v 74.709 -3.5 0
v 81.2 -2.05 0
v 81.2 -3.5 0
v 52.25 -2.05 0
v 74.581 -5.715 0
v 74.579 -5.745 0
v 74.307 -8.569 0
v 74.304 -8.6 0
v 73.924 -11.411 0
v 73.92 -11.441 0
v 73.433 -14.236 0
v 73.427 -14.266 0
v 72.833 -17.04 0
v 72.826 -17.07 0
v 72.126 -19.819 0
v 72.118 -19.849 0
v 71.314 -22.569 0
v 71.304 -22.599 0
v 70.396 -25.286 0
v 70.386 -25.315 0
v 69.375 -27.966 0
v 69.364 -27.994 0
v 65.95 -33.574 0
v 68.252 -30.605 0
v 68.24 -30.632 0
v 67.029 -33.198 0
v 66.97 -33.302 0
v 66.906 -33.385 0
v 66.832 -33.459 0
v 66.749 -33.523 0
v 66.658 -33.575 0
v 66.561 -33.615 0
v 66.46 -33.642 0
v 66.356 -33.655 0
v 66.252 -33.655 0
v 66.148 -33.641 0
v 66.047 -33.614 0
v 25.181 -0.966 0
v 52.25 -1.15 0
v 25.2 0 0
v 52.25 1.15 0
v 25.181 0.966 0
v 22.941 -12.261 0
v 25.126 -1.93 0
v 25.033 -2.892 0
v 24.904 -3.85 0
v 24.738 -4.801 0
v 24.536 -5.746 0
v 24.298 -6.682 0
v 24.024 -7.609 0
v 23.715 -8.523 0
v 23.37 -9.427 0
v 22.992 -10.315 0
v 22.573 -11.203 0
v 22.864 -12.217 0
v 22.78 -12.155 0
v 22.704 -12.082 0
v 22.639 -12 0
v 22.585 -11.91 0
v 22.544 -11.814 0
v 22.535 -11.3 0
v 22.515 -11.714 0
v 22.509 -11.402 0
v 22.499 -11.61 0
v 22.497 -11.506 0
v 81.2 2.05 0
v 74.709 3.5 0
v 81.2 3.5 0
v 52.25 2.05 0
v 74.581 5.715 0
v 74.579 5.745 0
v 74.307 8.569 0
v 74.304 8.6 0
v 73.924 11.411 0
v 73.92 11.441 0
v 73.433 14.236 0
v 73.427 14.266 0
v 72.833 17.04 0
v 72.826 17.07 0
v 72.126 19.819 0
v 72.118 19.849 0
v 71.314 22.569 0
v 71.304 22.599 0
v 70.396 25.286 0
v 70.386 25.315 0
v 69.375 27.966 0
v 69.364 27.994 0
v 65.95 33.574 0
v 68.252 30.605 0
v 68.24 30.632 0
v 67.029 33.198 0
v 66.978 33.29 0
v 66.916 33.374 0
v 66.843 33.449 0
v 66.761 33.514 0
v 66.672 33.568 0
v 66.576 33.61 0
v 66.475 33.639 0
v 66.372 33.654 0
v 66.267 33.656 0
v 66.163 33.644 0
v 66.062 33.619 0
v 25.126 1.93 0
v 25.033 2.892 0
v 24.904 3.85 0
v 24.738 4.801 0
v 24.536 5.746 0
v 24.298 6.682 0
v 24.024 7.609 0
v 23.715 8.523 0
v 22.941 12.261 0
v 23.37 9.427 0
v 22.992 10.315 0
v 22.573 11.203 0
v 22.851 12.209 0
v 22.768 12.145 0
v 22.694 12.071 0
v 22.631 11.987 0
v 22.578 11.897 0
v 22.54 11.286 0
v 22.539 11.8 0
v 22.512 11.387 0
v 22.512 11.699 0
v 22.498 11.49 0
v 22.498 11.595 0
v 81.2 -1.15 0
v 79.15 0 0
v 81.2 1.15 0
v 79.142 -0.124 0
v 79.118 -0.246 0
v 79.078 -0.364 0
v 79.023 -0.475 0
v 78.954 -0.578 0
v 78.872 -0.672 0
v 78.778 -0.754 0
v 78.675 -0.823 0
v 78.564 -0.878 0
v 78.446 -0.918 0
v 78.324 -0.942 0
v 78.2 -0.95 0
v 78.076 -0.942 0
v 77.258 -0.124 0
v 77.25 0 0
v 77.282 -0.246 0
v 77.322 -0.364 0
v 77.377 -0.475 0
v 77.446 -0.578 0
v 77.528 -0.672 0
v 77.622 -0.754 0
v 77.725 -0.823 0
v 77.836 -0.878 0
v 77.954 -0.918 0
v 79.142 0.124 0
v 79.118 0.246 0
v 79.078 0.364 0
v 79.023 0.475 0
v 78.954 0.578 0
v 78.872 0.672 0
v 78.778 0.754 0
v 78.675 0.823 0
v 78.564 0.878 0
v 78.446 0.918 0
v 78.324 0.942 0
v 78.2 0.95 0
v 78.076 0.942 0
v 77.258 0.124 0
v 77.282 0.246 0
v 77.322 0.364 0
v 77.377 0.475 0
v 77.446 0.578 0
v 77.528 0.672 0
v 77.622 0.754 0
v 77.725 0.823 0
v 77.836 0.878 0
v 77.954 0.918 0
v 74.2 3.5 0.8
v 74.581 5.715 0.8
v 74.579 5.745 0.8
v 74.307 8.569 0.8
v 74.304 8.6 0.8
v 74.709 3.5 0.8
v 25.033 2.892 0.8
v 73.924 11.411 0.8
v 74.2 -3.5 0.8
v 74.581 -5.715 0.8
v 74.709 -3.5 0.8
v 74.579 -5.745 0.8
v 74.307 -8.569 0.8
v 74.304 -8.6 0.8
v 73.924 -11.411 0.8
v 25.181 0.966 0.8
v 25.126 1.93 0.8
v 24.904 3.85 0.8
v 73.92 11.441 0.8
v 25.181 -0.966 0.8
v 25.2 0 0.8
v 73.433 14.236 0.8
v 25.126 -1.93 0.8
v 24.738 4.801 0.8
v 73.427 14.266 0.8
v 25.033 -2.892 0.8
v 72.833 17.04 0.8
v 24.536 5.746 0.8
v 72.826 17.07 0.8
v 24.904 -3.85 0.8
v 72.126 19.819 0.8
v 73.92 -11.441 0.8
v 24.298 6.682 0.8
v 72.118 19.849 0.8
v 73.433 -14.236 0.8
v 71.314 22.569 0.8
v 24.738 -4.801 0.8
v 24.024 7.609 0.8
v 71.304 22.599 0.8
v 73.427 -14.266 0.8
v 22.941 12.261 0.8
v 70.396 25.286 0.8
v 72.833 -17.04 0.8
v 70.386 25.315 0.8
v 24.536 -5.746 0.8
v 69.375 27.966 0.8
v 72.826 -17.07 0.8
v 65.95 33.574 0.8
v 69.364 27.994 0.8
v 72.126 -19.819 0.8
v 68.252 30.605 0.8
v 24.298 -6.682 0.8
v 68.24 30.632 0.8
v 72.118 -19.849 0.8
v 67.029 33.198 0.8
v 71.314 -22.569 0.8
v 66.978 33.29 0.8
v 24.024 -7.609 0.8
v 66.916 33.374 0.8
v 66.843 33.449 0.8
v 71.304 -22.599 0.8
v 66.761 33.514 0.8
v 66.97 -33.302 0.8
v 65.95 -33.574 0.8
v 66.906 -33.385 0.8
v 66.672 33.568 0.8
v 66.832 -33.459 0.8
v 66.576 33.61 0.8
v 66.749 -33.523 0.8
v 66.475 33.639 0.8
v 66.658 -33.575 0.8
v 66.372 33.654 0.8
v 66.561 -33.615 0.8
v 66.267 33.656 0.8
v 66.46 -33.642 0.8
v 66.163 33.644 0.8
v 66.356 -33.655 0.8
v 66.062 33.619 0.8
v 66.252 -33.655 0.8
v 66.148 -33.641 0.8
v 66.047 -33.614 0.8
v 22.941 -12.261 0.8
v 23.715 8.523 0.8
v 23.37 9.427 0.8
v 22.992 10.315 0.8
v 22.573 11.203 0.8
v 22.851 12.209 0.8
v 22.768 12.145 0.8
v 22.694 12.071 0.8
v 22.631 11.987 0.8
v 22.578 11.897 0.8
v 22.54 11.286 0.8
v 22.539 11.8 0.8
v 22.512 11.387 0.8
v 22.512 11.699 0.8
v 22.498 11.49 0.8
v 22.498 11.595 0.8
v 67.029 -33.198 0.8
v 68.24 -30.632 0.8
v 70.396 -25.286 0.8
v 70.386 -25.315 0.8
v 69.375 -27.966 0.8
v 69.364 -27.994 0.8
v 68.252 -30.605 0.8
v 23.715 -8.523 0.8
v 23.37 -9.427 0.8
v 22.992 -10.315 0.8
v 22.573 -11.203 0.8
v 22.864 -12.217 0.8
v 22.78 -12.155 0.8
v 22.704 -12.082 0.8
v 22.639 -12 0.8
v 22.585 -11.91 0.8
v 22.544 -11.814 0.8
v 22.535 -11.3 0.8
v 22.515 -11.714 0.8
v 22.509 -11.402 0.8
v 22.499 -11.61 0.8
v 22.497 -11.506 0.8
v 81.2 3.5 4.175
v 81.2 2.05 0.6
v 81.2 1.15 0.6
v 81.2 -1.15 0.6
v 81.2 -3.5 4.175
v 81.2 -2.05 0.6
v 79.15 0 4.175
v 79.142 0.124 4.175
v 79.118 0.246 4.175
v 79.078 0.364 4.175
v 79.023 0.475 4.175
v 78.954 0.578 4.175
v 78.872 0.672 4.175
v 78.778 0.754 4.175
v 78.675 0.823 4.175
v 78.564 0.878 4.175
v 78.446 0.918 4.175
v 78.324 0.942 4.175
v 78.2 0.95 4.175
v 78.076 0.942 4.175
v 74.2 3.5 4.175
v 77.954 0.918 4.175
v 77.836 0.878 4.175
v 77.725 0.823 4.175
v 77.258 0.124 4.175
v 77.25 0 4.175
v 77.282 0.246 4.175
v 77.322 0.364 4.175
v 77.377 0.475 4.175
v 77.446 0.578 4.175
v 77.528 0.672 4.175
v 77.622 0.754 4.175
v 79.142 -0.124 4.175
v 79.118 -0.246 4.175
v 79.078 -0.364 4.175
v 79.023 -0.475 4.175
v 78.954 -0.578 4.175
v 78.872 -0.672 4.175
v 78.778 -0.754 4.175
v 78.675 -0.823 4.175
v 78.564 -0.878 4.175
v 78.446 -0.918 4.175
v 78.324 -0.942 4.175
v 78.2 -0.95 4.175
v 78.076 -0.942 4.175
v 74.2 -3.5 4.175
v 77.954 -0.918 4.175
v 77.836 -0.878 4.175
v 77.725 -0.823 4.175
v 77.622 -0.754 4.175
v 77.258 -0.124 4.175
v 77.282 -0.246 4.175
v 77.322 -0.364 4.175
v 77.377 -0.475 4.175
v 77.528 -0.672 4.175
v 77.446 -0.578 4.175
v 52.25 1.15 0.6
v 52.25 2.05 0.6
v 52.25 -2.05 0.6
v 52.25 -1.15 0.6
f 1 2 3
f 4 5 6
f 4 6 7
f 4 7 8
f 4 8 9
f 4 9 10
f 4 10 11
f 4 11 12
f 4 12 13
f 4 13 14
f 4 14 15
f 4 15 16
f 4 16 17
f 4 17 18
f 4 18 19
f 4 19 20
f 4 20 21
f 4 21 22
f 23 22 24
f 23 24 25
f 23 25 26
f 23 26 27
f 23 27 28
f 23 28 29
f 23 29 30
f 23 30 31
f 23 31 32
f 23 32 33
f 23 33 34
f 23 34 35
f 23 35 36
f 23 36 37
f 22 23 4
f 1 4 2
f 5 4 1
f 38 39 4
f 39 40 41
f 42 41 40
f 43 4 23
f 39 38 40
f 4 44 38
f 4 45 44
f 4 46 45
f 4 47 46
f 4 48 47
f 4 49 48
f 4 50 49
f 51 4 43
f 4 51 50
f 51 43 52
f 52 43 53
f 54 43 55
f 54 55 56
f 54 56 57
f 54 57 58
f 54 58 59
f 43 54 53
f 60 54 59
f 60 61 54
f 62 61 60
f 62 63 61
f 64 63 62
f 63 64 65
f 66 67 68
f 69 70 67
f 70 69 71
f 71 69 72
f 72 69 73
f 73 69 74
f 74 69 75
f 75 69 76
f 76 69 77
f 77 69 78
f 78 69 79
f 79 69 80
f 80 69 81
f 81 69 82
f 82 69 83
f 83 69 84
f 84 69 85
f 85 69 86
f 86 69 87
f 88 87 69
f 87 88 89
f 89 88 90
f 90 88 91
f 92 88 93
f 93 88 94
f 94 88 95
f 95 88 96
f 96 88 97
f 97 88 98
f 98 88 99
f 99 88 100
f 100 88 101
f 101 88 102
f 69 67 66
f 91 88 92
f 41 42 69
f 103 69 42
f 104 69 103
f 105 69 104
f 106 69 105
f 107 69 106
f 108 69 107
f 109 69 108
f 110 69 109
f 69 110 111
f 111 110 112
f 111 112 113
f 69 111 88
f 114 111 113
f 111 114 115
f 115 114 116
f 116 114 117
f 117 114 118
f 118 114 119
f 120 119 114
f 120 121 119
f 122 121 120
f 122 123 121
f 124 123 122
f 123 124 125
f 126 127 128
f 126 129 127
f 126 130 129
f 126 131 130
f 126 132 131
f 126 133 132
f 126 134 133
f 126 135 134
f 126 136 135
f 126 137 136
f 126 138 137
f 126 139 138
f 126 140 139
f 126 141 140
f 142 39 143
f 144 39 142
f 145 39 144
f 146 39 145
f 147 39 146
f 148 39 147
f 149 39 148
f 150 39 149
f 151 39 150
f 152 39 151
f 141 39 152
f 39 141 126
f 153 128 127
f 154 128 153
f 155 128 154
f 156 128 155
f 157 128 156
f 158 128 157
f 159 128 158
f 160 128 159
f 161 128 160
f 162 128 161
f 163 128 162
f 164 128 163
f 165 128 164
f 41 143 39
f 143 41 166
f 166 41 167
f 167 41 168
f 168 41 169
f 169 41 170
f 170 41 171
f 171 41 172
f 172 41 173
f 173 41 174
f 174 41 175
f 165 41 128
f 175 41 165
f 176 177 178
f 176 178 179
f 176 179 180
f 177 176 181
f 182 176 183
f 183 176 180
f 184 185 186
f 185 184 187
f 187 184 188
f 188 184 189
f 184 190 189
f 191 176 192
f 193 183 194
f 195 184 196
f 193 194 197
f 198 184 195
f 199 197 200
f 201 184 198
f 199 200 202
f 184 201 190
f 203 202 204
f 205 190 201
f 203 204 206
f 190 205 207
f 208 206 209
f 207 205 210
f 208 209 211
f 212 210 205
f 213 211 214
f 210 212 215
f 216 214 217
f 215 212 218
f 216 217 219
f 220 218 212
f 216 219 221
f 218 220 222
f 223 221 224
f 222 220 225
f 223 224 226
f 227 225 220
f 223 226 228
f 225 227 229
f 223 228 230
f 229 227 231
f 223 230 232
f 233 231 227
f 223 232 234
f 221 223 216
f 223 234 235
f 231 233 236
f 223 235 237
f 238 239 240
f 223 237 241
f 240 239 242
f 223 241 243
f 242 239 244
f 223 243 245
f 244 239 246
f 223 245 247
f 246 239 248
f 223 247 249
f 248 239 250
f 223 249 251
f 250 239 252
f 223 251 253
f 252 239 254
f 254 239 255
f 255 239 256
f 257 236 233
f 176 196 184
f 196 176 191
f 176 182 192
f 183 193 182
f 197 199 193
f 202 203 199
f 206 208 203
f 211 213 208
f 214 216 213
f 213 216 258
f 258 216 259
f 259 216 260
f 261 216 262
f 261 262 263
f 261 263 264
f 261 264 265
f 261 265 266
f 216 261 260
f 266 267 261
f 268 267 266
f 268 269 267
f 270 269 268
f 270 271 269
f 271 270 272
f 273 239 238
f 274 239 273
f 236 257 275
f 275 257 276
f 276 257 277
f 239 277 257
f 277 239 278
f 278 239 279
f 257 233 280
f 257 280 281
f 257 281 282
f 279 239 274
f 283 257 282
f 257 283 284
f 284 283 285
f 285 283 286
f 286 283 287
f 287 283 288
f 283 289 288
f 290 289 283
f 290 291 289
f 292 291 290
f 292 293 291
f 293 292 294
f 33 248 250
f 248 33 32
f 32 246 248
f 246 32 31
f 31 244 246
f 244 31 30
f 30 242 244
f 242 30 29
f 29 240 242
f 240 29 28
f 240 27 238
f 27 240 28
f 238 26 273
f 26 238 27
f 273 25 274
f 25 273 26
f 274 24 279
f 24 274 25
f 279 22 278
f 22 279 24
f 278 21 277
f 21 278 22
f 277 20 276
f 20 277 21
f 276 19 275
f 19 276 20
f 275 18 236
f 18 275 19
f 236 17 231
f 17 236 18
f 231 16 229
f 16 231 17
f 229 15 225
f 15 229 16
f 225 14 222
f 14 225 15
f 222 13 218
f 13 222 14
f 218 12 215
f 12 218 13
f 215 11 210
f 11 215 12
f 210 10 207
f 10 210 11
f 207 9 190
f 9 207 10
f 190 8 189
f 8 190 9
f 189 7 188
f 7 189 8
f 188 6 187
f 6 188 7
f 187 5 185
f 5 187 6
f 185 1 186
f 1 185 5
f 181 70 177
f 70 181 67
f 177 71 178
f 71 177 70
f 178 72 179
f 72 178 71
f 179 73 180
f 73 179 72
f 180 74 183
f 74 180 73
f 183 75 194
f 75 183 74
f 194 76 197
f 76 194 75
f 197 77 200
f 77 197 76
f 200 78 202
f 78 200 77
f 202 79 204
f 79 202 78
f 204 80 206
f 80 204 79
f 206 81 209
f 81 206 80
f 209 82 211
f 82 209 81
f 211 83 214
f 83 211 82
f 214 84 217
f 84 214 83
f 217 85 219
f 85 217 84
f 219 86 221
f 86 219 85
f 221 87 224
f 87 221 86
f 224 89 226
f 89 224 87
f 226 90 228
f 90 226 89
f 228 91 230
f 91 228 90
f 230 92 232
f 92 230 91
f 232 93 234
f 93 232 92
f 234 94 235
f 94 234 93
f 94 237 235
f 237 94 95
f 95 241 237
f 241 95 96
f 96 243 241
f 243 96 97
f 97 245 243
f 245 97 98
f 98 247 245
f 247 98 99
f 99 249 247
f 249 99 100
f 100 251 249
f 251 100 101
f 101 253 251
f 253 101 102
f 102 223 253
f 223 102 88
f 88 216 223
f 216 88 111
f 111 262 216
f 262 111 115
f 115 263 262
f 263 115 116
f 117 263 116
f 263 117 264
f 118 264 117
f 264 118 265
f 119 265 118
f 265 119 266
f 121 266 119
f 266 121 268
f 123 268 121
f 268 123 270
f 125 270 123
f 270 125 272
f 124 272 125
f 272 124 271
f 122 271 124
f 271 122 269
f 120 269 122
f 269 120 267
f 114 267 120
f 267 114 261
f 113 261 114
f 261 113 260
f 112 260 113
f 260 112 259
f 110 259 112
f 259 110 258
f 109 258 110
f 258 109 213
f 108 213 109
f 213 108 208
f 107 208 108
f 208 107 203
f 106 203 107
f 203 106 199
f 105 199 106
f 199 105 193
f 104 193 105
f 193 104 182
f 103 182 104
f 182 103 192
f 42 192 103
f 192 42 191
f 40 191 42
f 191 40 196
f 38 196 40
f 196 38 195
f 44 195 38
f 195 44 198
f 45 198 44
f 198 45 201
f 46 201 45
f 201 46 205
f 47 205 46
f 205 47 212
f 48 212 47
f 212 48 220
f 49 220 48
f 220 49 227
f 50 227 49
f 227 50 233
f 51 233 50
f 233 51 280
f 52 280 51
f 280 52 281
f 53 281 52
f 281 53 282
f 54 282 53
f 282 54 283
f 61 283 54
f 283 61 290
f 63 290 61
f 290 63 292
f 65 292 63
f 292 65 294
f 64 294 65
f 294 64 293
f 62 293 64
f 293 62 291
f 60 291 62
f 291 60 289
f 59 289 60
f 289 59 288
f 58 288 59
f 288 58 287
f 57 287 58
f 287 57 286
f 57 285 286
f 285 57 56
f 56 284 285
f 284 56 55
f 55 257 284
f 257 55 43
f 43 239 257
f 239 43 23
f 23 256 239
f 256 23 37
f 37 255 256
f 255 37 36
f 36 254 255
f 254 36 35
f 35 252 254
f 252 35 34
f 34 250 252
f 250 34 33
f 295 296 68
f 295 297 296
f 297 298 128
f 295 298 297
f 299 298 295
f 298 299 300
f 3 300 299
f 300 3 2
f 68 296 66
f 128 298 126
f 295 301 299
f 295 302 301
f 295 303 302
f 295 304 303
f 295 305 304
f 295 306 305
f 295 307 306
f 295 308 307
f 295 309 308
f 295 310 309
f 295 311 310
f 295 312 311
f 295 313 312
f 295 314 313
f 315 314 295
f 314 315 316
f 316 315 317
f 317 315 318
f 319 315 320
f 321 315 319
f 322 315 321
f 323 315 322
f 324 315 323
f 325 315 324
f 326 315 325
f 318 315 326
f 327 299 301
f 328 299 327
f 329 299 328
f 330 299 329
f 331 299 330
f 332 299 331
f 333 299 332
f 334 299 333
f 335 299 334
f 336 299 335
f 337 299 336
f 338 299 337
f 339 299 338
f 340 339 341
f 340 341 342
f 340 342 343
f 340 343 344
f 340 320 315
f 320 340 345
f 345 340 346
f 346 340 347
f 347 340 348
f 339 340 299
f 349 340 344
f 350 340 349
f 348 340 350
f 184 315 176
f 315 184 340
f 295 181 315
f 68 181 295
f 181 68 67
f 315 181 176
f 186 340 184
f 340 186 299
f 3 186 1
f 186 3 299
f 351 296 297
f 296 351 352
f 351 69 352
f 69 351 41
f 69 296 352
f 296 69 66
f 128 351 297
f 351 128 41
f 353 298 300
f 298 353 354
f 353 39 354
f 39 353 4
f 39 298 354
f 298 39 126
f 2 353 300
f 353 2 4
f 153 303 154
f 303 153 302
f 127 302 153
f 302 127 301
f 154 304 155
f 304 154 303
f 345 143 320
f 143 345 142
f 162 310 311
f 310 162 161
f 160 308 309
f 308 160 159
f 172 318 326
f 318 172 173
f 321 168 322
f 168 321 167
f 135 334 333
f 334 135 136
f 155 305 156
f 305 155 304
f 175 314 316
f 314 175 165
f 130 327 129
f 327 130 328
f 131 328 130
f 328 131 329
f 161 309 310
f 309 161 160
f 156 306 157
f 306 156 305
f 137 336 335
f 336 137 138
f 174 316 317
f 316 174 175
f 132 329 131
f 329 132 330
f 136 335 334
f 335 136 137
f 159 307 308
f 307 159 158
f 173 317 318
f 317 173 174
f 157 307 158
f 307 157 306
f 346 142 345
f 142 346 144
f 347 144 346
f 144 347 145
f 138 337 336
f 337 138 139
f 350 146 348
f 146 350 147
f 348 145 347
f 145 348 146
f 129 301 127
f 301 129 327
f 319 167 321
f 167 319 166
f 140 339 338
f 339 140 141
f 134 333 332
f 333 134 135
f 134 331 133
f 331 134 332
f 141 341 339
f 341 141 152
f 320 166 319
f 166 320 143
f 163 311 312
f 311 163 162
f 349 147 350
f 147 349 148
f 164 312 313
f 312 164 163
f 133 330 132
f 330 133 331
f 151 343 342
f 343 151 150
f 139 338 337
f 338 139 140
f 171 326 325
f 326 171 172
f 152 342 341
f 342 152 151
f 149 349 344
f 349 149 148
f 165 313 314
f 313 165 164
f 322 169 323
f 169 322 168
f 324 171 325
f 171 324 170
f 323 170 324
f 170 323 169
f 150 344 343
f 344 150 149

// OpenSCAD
// file: parameters.scad
// =============================================================================
// Gen-BW — nightly 2026-10-10 (physics_scorer, honest magpylib watts)
// Stacked poles: two Ø20×5 per pocket (10 mm poles), 4 per rotor at R52, trading pole count for field — peak Bz at the copper rises to ≈0.73 T (vs 0.54 T on Gen-BR), which lets a thin 6.75 mm copper layer with a very deep 21 mm build carry the turns. But the electrical frequency halves, and the scorer puts it at about 45 % of Gen-BR: the thicker magnets do not make up for half the poles.
// Clocking 0 deg (magnets N facing S) + D-flat keyed bore + index notch + flip-symmetric hole map.
// Windable 2-piece bobbin; turns = physics_scorer turns_fit; copper only between flanges.
// Steel back-iron: 2× Ø134 × 6.35 mm (1/4") mild-steel discs (steel_backiron_disc.dxf); magnets sit ON the steel
// (through-pockets) -> score with --back-iron. Night 2026-10-10.
// =============================================================================
topology            = "dual_rotor";

// --- Wire / winding (physics_scorer winding-fit) -------------------------------
wire_awg            = 26;
wire_od             = 0.45;     // insulated OD mm (bare 0.405)
fill_realistic      = 0.65;     // insulated-wire area / window (DENSE layered wind with a jig; scorer cap 0.65)
turns               = 586;       // = physics_scorer turns_fit (do NOT raise)
coil_former_type    = "bobbin";
coil_core_inset     = 21.25;     // radial copper build: hub = copper boundary inset by this
wind_build_axial    = 0.0;      // nothing proud of the flanges
wind_build_radial   = 0.0;

// --- Bobbin (base + lid) ---------------------------------------------------------
coil_id_r           = 26.00;    // copper boundary sector
coil_od_r           = 74.00;
span_deg            = 52.72;    // = pitch - 2*asin((wall+0.85)/coil_id_r) -> >=1.2 mm stator web
former_web          = 6.75;     // copper height between flanges (TALL copper: steel keeps Bz up)
flange_t            = 0.80;     // >= 0.8 mm FDM wall rule (tall winds push on the flanges)
wall                = 0.80;     // flange lip beyond copper
former_bare_h       = former_web + 2 * flange_t;
coil_envelope_h     = former_bare_h + 2 * wind_build_axial;
tab_w               = 7.0;
tab_len             = 7.0;
tab_h               = former_bare_h / 2;
pin_d               = 1.9;      // 1.75 mm filament locating pin
coil_mount_r        = coil_od_r + 0.2 + 4.0;
lead_y              = 1.6;
lead_slot_w         = 0.9;
lead_groove_d       = 0.6;

// --- Gap -------------------------------------------------------------------------
run_clear           = 0.50;     // rotor face -> flange
gap_spacer_h        = run_clear + wind_build_axial;
m2m                 = coil_envelope_h + 2 * run_clear;   // rotor face to rotor face (= gap_sleeve length)

// --- Stator ----------------------------------------------------------------------
coil_stations       = 6;
bay_clear           = 0.25;
stator_thick        = former_bare_h;                        // bobbins flush both faces
stator_od           = 166;
shaft_clear_stator  = 14.0;     // stator is static; gap sleeve OD 12 spins inside

// --- Rotor(s) --------------------------------------------------------------------
magnet_Br           = 1.43;     // N52
magnet_d_large      = 20.0;
magnet_h_large      = 10.0;      // two O20x5 stacked per pocket
magnet_h_small      = 5.0;      // unused: no O5 pockets in this kit
halbach_magnetisation = "none";  // NO O5 assist magnets in this kit (scan: they lower the 4-pole score)
rotor_b_same_axis   = true;     // same-index magnets share one axis: N faces S across the gap
large_pocket_d      = 20.3;
small_pocket_d      = 5.3;
pocket_h            = 10.00;     // THROUGH the carrier: magnet back face sits on the steel disc (FLUSH seat: carrier = magnet height, magnet face level with the rotor face)
large_n             = 4;
R_large             = 52.0;
small_r_list        = [];       // no O5 pockets
carrier_od          = 134.0;
carrier_thick       = pocket_h;
hub_h               = 14.0;     // > steel_t + insert: radial set-screw clears the steel
hub_od              = 24.0;     // slim hub so the M4 brace rods fit at R~18 inside the coil ring
hub_insert_d        = 4.0;      // M3 heat-set insert, radial, bears on the D-flat
rotor_b_offset_deg  = 0.0;      // CLOCKING: magnets directly opposite
shaft_key           = "dflat";
dflat_depth         = 0.5;      // 8 mm shaft with 0.5 mm flat (7.5 across flat)
index_notch_d       = 3.0;

// --- Steel back-iron (buyable laser-cut) -------------------------------------------
steel_t             = 6.35;      // mild steel thickness (image method ignores it; sized from steel_flux.py so the return path stays well below saturation)
steel_center_hole   = 26.0;     // slips over the rotor hub (OD 24)
steel_od            = carrier_od;   // steel disc OD = rotor carrier OD

// --- Modular MAX interface ----------------------------------------------------------
shaft_bore          = 8.35;
dflat_x             = 4.0 - dflat_depth + (shaft_bore - 8.0) / 2;
bearing_d           = 21.85;
bearing_h           = 7.2;
m3_clear            = 3.5;
bolt_r_inner        = 30.0;     // M3 steel-disc clamp bolts (inside the magnet ring)
bolt_n_inner        = 4;
bolt_inner_angles   = [0, 90, 180, 270];
bolt_r_outer        = 63.0;     // second M3 steel-disc clamp ring
bolt_outer_angles   = [45, 135, 225, 315];
flange_bolt_r       = 73.0;     // frame rods: OUTSIDE the rotor OD (rotors spin inside them)
flange_bolt_n       = 6;
flange_bolt_offset  = 30.00;    // between coil stations -> never cuts a lead groove/tab
brace_r             = 18.0;
brace_d             = 4.3;      // temporary M4 jack rods (assembly only)
brace_n             = 4;
brace_angles        = [45, 135, 225, 315];          // flip-symmetric

spacer_pad_od       = 14.0;
spacer_pad_id       = m3_clear;
endbell_od          = 156.0;
endbell_thick       = 8.0;
endbell_shaft_clear = 10.0;
collar_h            = 10.0;
standoff_od         = 9.0;
frame_standoff_h    = run_clear + carrier_thick + hub_h + collar_h + 2.0;
sleeve_od           = 12.0;
plate_max_mm        = 410;

$fn = 64;
// main file
// Gen-BW — bobbin LID (top flange + locating tab). Print x6, flange face DOWN on the bed.
// CA-glue onto the hub top BEFORE winding. Tab = lap joint into the stator tab pocket; 1.75 mm filament
// pin through pin hole + stator ledge, trim flush. Lead slots carry both leads flush.
include <parameters.scad>;
$fn = 48;
module sector_2d(r_in, r_out, ang) {
    polygon([
        for (a = [-ang/2 : ang/24 : ang/2]) [r_in*cos(a), r_in*sin(a)],
        for (a = [ang/2 : -ang/24 : -ang/2]) [r_out*cos(a), r_out*sin(a)]
    ]);
}
module footprint_2d() { offset(r=wall) sector_2d(coil_id_r, coil_od_r, span_deg); }
module hub_2d()       { offset(delta=-coil_core_inset) sector_2d(coil_id_r, coil_od_r, span_deg); }

difference() {
    union() {
        linear_extrude(flange_t) footprint_2d();
        translate([coil_od_r + 0.2, -tab_w/2, 0]) cube([tab_len, tab_w, tab_h]);
    }
    translate([coil_mount_r, 0, -0.1]) cylinder(d=pin_d, h=tab_h + 1);
    for (y = [lead_y, -lead_y])
        translate([coil_od_r - coil_core_inset - 0.5, y - lead_slot_w/2, -0.1])
            cube([coil_core_inset + tab_len + 2, lead_slot_w, lead_groove_d + 0.1]);
}
